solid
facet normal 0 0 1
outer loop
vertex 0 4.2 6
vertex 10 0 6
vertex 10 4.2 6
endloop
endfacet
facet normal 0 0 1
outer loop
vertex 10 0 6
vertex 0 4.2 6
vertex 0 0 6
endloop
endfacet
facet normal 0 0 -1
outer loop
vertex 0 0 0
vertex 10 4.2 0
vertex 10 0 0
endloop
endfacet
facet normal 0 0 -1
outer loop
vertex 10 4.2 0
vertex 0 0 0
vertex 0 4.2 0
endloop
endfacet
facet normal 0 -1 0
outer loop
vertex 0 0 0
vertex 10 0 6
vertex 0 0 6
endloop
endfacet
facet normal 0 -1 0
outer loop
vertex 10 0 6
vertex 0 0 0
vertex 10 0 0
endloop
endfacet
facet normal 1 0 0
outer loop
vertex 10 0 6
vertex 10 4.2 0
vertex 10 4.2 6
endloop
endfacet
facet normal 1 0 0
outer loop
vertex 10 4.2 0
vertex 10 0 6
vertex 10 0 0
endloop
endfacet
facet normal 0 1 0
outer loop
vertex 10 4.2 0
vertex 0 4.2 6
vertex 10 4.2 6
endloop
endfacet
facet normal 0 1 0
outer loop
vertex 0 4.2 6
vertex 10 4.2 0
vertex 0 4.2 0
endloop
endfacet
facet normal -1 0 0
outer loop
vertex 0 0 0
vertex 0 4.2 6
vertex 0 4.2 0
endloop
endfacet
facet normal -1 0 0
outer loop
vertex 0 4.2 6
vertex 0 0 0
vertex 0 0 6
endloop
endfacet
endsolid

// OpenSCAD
/*
translate([250,-86.049,120.84])
rotate([23,0,0])
import("notanks_v2_track_insert.stl");
*/

// width: 3.5
// length: 10
// height: 8
cube([10,4.2,6]);
